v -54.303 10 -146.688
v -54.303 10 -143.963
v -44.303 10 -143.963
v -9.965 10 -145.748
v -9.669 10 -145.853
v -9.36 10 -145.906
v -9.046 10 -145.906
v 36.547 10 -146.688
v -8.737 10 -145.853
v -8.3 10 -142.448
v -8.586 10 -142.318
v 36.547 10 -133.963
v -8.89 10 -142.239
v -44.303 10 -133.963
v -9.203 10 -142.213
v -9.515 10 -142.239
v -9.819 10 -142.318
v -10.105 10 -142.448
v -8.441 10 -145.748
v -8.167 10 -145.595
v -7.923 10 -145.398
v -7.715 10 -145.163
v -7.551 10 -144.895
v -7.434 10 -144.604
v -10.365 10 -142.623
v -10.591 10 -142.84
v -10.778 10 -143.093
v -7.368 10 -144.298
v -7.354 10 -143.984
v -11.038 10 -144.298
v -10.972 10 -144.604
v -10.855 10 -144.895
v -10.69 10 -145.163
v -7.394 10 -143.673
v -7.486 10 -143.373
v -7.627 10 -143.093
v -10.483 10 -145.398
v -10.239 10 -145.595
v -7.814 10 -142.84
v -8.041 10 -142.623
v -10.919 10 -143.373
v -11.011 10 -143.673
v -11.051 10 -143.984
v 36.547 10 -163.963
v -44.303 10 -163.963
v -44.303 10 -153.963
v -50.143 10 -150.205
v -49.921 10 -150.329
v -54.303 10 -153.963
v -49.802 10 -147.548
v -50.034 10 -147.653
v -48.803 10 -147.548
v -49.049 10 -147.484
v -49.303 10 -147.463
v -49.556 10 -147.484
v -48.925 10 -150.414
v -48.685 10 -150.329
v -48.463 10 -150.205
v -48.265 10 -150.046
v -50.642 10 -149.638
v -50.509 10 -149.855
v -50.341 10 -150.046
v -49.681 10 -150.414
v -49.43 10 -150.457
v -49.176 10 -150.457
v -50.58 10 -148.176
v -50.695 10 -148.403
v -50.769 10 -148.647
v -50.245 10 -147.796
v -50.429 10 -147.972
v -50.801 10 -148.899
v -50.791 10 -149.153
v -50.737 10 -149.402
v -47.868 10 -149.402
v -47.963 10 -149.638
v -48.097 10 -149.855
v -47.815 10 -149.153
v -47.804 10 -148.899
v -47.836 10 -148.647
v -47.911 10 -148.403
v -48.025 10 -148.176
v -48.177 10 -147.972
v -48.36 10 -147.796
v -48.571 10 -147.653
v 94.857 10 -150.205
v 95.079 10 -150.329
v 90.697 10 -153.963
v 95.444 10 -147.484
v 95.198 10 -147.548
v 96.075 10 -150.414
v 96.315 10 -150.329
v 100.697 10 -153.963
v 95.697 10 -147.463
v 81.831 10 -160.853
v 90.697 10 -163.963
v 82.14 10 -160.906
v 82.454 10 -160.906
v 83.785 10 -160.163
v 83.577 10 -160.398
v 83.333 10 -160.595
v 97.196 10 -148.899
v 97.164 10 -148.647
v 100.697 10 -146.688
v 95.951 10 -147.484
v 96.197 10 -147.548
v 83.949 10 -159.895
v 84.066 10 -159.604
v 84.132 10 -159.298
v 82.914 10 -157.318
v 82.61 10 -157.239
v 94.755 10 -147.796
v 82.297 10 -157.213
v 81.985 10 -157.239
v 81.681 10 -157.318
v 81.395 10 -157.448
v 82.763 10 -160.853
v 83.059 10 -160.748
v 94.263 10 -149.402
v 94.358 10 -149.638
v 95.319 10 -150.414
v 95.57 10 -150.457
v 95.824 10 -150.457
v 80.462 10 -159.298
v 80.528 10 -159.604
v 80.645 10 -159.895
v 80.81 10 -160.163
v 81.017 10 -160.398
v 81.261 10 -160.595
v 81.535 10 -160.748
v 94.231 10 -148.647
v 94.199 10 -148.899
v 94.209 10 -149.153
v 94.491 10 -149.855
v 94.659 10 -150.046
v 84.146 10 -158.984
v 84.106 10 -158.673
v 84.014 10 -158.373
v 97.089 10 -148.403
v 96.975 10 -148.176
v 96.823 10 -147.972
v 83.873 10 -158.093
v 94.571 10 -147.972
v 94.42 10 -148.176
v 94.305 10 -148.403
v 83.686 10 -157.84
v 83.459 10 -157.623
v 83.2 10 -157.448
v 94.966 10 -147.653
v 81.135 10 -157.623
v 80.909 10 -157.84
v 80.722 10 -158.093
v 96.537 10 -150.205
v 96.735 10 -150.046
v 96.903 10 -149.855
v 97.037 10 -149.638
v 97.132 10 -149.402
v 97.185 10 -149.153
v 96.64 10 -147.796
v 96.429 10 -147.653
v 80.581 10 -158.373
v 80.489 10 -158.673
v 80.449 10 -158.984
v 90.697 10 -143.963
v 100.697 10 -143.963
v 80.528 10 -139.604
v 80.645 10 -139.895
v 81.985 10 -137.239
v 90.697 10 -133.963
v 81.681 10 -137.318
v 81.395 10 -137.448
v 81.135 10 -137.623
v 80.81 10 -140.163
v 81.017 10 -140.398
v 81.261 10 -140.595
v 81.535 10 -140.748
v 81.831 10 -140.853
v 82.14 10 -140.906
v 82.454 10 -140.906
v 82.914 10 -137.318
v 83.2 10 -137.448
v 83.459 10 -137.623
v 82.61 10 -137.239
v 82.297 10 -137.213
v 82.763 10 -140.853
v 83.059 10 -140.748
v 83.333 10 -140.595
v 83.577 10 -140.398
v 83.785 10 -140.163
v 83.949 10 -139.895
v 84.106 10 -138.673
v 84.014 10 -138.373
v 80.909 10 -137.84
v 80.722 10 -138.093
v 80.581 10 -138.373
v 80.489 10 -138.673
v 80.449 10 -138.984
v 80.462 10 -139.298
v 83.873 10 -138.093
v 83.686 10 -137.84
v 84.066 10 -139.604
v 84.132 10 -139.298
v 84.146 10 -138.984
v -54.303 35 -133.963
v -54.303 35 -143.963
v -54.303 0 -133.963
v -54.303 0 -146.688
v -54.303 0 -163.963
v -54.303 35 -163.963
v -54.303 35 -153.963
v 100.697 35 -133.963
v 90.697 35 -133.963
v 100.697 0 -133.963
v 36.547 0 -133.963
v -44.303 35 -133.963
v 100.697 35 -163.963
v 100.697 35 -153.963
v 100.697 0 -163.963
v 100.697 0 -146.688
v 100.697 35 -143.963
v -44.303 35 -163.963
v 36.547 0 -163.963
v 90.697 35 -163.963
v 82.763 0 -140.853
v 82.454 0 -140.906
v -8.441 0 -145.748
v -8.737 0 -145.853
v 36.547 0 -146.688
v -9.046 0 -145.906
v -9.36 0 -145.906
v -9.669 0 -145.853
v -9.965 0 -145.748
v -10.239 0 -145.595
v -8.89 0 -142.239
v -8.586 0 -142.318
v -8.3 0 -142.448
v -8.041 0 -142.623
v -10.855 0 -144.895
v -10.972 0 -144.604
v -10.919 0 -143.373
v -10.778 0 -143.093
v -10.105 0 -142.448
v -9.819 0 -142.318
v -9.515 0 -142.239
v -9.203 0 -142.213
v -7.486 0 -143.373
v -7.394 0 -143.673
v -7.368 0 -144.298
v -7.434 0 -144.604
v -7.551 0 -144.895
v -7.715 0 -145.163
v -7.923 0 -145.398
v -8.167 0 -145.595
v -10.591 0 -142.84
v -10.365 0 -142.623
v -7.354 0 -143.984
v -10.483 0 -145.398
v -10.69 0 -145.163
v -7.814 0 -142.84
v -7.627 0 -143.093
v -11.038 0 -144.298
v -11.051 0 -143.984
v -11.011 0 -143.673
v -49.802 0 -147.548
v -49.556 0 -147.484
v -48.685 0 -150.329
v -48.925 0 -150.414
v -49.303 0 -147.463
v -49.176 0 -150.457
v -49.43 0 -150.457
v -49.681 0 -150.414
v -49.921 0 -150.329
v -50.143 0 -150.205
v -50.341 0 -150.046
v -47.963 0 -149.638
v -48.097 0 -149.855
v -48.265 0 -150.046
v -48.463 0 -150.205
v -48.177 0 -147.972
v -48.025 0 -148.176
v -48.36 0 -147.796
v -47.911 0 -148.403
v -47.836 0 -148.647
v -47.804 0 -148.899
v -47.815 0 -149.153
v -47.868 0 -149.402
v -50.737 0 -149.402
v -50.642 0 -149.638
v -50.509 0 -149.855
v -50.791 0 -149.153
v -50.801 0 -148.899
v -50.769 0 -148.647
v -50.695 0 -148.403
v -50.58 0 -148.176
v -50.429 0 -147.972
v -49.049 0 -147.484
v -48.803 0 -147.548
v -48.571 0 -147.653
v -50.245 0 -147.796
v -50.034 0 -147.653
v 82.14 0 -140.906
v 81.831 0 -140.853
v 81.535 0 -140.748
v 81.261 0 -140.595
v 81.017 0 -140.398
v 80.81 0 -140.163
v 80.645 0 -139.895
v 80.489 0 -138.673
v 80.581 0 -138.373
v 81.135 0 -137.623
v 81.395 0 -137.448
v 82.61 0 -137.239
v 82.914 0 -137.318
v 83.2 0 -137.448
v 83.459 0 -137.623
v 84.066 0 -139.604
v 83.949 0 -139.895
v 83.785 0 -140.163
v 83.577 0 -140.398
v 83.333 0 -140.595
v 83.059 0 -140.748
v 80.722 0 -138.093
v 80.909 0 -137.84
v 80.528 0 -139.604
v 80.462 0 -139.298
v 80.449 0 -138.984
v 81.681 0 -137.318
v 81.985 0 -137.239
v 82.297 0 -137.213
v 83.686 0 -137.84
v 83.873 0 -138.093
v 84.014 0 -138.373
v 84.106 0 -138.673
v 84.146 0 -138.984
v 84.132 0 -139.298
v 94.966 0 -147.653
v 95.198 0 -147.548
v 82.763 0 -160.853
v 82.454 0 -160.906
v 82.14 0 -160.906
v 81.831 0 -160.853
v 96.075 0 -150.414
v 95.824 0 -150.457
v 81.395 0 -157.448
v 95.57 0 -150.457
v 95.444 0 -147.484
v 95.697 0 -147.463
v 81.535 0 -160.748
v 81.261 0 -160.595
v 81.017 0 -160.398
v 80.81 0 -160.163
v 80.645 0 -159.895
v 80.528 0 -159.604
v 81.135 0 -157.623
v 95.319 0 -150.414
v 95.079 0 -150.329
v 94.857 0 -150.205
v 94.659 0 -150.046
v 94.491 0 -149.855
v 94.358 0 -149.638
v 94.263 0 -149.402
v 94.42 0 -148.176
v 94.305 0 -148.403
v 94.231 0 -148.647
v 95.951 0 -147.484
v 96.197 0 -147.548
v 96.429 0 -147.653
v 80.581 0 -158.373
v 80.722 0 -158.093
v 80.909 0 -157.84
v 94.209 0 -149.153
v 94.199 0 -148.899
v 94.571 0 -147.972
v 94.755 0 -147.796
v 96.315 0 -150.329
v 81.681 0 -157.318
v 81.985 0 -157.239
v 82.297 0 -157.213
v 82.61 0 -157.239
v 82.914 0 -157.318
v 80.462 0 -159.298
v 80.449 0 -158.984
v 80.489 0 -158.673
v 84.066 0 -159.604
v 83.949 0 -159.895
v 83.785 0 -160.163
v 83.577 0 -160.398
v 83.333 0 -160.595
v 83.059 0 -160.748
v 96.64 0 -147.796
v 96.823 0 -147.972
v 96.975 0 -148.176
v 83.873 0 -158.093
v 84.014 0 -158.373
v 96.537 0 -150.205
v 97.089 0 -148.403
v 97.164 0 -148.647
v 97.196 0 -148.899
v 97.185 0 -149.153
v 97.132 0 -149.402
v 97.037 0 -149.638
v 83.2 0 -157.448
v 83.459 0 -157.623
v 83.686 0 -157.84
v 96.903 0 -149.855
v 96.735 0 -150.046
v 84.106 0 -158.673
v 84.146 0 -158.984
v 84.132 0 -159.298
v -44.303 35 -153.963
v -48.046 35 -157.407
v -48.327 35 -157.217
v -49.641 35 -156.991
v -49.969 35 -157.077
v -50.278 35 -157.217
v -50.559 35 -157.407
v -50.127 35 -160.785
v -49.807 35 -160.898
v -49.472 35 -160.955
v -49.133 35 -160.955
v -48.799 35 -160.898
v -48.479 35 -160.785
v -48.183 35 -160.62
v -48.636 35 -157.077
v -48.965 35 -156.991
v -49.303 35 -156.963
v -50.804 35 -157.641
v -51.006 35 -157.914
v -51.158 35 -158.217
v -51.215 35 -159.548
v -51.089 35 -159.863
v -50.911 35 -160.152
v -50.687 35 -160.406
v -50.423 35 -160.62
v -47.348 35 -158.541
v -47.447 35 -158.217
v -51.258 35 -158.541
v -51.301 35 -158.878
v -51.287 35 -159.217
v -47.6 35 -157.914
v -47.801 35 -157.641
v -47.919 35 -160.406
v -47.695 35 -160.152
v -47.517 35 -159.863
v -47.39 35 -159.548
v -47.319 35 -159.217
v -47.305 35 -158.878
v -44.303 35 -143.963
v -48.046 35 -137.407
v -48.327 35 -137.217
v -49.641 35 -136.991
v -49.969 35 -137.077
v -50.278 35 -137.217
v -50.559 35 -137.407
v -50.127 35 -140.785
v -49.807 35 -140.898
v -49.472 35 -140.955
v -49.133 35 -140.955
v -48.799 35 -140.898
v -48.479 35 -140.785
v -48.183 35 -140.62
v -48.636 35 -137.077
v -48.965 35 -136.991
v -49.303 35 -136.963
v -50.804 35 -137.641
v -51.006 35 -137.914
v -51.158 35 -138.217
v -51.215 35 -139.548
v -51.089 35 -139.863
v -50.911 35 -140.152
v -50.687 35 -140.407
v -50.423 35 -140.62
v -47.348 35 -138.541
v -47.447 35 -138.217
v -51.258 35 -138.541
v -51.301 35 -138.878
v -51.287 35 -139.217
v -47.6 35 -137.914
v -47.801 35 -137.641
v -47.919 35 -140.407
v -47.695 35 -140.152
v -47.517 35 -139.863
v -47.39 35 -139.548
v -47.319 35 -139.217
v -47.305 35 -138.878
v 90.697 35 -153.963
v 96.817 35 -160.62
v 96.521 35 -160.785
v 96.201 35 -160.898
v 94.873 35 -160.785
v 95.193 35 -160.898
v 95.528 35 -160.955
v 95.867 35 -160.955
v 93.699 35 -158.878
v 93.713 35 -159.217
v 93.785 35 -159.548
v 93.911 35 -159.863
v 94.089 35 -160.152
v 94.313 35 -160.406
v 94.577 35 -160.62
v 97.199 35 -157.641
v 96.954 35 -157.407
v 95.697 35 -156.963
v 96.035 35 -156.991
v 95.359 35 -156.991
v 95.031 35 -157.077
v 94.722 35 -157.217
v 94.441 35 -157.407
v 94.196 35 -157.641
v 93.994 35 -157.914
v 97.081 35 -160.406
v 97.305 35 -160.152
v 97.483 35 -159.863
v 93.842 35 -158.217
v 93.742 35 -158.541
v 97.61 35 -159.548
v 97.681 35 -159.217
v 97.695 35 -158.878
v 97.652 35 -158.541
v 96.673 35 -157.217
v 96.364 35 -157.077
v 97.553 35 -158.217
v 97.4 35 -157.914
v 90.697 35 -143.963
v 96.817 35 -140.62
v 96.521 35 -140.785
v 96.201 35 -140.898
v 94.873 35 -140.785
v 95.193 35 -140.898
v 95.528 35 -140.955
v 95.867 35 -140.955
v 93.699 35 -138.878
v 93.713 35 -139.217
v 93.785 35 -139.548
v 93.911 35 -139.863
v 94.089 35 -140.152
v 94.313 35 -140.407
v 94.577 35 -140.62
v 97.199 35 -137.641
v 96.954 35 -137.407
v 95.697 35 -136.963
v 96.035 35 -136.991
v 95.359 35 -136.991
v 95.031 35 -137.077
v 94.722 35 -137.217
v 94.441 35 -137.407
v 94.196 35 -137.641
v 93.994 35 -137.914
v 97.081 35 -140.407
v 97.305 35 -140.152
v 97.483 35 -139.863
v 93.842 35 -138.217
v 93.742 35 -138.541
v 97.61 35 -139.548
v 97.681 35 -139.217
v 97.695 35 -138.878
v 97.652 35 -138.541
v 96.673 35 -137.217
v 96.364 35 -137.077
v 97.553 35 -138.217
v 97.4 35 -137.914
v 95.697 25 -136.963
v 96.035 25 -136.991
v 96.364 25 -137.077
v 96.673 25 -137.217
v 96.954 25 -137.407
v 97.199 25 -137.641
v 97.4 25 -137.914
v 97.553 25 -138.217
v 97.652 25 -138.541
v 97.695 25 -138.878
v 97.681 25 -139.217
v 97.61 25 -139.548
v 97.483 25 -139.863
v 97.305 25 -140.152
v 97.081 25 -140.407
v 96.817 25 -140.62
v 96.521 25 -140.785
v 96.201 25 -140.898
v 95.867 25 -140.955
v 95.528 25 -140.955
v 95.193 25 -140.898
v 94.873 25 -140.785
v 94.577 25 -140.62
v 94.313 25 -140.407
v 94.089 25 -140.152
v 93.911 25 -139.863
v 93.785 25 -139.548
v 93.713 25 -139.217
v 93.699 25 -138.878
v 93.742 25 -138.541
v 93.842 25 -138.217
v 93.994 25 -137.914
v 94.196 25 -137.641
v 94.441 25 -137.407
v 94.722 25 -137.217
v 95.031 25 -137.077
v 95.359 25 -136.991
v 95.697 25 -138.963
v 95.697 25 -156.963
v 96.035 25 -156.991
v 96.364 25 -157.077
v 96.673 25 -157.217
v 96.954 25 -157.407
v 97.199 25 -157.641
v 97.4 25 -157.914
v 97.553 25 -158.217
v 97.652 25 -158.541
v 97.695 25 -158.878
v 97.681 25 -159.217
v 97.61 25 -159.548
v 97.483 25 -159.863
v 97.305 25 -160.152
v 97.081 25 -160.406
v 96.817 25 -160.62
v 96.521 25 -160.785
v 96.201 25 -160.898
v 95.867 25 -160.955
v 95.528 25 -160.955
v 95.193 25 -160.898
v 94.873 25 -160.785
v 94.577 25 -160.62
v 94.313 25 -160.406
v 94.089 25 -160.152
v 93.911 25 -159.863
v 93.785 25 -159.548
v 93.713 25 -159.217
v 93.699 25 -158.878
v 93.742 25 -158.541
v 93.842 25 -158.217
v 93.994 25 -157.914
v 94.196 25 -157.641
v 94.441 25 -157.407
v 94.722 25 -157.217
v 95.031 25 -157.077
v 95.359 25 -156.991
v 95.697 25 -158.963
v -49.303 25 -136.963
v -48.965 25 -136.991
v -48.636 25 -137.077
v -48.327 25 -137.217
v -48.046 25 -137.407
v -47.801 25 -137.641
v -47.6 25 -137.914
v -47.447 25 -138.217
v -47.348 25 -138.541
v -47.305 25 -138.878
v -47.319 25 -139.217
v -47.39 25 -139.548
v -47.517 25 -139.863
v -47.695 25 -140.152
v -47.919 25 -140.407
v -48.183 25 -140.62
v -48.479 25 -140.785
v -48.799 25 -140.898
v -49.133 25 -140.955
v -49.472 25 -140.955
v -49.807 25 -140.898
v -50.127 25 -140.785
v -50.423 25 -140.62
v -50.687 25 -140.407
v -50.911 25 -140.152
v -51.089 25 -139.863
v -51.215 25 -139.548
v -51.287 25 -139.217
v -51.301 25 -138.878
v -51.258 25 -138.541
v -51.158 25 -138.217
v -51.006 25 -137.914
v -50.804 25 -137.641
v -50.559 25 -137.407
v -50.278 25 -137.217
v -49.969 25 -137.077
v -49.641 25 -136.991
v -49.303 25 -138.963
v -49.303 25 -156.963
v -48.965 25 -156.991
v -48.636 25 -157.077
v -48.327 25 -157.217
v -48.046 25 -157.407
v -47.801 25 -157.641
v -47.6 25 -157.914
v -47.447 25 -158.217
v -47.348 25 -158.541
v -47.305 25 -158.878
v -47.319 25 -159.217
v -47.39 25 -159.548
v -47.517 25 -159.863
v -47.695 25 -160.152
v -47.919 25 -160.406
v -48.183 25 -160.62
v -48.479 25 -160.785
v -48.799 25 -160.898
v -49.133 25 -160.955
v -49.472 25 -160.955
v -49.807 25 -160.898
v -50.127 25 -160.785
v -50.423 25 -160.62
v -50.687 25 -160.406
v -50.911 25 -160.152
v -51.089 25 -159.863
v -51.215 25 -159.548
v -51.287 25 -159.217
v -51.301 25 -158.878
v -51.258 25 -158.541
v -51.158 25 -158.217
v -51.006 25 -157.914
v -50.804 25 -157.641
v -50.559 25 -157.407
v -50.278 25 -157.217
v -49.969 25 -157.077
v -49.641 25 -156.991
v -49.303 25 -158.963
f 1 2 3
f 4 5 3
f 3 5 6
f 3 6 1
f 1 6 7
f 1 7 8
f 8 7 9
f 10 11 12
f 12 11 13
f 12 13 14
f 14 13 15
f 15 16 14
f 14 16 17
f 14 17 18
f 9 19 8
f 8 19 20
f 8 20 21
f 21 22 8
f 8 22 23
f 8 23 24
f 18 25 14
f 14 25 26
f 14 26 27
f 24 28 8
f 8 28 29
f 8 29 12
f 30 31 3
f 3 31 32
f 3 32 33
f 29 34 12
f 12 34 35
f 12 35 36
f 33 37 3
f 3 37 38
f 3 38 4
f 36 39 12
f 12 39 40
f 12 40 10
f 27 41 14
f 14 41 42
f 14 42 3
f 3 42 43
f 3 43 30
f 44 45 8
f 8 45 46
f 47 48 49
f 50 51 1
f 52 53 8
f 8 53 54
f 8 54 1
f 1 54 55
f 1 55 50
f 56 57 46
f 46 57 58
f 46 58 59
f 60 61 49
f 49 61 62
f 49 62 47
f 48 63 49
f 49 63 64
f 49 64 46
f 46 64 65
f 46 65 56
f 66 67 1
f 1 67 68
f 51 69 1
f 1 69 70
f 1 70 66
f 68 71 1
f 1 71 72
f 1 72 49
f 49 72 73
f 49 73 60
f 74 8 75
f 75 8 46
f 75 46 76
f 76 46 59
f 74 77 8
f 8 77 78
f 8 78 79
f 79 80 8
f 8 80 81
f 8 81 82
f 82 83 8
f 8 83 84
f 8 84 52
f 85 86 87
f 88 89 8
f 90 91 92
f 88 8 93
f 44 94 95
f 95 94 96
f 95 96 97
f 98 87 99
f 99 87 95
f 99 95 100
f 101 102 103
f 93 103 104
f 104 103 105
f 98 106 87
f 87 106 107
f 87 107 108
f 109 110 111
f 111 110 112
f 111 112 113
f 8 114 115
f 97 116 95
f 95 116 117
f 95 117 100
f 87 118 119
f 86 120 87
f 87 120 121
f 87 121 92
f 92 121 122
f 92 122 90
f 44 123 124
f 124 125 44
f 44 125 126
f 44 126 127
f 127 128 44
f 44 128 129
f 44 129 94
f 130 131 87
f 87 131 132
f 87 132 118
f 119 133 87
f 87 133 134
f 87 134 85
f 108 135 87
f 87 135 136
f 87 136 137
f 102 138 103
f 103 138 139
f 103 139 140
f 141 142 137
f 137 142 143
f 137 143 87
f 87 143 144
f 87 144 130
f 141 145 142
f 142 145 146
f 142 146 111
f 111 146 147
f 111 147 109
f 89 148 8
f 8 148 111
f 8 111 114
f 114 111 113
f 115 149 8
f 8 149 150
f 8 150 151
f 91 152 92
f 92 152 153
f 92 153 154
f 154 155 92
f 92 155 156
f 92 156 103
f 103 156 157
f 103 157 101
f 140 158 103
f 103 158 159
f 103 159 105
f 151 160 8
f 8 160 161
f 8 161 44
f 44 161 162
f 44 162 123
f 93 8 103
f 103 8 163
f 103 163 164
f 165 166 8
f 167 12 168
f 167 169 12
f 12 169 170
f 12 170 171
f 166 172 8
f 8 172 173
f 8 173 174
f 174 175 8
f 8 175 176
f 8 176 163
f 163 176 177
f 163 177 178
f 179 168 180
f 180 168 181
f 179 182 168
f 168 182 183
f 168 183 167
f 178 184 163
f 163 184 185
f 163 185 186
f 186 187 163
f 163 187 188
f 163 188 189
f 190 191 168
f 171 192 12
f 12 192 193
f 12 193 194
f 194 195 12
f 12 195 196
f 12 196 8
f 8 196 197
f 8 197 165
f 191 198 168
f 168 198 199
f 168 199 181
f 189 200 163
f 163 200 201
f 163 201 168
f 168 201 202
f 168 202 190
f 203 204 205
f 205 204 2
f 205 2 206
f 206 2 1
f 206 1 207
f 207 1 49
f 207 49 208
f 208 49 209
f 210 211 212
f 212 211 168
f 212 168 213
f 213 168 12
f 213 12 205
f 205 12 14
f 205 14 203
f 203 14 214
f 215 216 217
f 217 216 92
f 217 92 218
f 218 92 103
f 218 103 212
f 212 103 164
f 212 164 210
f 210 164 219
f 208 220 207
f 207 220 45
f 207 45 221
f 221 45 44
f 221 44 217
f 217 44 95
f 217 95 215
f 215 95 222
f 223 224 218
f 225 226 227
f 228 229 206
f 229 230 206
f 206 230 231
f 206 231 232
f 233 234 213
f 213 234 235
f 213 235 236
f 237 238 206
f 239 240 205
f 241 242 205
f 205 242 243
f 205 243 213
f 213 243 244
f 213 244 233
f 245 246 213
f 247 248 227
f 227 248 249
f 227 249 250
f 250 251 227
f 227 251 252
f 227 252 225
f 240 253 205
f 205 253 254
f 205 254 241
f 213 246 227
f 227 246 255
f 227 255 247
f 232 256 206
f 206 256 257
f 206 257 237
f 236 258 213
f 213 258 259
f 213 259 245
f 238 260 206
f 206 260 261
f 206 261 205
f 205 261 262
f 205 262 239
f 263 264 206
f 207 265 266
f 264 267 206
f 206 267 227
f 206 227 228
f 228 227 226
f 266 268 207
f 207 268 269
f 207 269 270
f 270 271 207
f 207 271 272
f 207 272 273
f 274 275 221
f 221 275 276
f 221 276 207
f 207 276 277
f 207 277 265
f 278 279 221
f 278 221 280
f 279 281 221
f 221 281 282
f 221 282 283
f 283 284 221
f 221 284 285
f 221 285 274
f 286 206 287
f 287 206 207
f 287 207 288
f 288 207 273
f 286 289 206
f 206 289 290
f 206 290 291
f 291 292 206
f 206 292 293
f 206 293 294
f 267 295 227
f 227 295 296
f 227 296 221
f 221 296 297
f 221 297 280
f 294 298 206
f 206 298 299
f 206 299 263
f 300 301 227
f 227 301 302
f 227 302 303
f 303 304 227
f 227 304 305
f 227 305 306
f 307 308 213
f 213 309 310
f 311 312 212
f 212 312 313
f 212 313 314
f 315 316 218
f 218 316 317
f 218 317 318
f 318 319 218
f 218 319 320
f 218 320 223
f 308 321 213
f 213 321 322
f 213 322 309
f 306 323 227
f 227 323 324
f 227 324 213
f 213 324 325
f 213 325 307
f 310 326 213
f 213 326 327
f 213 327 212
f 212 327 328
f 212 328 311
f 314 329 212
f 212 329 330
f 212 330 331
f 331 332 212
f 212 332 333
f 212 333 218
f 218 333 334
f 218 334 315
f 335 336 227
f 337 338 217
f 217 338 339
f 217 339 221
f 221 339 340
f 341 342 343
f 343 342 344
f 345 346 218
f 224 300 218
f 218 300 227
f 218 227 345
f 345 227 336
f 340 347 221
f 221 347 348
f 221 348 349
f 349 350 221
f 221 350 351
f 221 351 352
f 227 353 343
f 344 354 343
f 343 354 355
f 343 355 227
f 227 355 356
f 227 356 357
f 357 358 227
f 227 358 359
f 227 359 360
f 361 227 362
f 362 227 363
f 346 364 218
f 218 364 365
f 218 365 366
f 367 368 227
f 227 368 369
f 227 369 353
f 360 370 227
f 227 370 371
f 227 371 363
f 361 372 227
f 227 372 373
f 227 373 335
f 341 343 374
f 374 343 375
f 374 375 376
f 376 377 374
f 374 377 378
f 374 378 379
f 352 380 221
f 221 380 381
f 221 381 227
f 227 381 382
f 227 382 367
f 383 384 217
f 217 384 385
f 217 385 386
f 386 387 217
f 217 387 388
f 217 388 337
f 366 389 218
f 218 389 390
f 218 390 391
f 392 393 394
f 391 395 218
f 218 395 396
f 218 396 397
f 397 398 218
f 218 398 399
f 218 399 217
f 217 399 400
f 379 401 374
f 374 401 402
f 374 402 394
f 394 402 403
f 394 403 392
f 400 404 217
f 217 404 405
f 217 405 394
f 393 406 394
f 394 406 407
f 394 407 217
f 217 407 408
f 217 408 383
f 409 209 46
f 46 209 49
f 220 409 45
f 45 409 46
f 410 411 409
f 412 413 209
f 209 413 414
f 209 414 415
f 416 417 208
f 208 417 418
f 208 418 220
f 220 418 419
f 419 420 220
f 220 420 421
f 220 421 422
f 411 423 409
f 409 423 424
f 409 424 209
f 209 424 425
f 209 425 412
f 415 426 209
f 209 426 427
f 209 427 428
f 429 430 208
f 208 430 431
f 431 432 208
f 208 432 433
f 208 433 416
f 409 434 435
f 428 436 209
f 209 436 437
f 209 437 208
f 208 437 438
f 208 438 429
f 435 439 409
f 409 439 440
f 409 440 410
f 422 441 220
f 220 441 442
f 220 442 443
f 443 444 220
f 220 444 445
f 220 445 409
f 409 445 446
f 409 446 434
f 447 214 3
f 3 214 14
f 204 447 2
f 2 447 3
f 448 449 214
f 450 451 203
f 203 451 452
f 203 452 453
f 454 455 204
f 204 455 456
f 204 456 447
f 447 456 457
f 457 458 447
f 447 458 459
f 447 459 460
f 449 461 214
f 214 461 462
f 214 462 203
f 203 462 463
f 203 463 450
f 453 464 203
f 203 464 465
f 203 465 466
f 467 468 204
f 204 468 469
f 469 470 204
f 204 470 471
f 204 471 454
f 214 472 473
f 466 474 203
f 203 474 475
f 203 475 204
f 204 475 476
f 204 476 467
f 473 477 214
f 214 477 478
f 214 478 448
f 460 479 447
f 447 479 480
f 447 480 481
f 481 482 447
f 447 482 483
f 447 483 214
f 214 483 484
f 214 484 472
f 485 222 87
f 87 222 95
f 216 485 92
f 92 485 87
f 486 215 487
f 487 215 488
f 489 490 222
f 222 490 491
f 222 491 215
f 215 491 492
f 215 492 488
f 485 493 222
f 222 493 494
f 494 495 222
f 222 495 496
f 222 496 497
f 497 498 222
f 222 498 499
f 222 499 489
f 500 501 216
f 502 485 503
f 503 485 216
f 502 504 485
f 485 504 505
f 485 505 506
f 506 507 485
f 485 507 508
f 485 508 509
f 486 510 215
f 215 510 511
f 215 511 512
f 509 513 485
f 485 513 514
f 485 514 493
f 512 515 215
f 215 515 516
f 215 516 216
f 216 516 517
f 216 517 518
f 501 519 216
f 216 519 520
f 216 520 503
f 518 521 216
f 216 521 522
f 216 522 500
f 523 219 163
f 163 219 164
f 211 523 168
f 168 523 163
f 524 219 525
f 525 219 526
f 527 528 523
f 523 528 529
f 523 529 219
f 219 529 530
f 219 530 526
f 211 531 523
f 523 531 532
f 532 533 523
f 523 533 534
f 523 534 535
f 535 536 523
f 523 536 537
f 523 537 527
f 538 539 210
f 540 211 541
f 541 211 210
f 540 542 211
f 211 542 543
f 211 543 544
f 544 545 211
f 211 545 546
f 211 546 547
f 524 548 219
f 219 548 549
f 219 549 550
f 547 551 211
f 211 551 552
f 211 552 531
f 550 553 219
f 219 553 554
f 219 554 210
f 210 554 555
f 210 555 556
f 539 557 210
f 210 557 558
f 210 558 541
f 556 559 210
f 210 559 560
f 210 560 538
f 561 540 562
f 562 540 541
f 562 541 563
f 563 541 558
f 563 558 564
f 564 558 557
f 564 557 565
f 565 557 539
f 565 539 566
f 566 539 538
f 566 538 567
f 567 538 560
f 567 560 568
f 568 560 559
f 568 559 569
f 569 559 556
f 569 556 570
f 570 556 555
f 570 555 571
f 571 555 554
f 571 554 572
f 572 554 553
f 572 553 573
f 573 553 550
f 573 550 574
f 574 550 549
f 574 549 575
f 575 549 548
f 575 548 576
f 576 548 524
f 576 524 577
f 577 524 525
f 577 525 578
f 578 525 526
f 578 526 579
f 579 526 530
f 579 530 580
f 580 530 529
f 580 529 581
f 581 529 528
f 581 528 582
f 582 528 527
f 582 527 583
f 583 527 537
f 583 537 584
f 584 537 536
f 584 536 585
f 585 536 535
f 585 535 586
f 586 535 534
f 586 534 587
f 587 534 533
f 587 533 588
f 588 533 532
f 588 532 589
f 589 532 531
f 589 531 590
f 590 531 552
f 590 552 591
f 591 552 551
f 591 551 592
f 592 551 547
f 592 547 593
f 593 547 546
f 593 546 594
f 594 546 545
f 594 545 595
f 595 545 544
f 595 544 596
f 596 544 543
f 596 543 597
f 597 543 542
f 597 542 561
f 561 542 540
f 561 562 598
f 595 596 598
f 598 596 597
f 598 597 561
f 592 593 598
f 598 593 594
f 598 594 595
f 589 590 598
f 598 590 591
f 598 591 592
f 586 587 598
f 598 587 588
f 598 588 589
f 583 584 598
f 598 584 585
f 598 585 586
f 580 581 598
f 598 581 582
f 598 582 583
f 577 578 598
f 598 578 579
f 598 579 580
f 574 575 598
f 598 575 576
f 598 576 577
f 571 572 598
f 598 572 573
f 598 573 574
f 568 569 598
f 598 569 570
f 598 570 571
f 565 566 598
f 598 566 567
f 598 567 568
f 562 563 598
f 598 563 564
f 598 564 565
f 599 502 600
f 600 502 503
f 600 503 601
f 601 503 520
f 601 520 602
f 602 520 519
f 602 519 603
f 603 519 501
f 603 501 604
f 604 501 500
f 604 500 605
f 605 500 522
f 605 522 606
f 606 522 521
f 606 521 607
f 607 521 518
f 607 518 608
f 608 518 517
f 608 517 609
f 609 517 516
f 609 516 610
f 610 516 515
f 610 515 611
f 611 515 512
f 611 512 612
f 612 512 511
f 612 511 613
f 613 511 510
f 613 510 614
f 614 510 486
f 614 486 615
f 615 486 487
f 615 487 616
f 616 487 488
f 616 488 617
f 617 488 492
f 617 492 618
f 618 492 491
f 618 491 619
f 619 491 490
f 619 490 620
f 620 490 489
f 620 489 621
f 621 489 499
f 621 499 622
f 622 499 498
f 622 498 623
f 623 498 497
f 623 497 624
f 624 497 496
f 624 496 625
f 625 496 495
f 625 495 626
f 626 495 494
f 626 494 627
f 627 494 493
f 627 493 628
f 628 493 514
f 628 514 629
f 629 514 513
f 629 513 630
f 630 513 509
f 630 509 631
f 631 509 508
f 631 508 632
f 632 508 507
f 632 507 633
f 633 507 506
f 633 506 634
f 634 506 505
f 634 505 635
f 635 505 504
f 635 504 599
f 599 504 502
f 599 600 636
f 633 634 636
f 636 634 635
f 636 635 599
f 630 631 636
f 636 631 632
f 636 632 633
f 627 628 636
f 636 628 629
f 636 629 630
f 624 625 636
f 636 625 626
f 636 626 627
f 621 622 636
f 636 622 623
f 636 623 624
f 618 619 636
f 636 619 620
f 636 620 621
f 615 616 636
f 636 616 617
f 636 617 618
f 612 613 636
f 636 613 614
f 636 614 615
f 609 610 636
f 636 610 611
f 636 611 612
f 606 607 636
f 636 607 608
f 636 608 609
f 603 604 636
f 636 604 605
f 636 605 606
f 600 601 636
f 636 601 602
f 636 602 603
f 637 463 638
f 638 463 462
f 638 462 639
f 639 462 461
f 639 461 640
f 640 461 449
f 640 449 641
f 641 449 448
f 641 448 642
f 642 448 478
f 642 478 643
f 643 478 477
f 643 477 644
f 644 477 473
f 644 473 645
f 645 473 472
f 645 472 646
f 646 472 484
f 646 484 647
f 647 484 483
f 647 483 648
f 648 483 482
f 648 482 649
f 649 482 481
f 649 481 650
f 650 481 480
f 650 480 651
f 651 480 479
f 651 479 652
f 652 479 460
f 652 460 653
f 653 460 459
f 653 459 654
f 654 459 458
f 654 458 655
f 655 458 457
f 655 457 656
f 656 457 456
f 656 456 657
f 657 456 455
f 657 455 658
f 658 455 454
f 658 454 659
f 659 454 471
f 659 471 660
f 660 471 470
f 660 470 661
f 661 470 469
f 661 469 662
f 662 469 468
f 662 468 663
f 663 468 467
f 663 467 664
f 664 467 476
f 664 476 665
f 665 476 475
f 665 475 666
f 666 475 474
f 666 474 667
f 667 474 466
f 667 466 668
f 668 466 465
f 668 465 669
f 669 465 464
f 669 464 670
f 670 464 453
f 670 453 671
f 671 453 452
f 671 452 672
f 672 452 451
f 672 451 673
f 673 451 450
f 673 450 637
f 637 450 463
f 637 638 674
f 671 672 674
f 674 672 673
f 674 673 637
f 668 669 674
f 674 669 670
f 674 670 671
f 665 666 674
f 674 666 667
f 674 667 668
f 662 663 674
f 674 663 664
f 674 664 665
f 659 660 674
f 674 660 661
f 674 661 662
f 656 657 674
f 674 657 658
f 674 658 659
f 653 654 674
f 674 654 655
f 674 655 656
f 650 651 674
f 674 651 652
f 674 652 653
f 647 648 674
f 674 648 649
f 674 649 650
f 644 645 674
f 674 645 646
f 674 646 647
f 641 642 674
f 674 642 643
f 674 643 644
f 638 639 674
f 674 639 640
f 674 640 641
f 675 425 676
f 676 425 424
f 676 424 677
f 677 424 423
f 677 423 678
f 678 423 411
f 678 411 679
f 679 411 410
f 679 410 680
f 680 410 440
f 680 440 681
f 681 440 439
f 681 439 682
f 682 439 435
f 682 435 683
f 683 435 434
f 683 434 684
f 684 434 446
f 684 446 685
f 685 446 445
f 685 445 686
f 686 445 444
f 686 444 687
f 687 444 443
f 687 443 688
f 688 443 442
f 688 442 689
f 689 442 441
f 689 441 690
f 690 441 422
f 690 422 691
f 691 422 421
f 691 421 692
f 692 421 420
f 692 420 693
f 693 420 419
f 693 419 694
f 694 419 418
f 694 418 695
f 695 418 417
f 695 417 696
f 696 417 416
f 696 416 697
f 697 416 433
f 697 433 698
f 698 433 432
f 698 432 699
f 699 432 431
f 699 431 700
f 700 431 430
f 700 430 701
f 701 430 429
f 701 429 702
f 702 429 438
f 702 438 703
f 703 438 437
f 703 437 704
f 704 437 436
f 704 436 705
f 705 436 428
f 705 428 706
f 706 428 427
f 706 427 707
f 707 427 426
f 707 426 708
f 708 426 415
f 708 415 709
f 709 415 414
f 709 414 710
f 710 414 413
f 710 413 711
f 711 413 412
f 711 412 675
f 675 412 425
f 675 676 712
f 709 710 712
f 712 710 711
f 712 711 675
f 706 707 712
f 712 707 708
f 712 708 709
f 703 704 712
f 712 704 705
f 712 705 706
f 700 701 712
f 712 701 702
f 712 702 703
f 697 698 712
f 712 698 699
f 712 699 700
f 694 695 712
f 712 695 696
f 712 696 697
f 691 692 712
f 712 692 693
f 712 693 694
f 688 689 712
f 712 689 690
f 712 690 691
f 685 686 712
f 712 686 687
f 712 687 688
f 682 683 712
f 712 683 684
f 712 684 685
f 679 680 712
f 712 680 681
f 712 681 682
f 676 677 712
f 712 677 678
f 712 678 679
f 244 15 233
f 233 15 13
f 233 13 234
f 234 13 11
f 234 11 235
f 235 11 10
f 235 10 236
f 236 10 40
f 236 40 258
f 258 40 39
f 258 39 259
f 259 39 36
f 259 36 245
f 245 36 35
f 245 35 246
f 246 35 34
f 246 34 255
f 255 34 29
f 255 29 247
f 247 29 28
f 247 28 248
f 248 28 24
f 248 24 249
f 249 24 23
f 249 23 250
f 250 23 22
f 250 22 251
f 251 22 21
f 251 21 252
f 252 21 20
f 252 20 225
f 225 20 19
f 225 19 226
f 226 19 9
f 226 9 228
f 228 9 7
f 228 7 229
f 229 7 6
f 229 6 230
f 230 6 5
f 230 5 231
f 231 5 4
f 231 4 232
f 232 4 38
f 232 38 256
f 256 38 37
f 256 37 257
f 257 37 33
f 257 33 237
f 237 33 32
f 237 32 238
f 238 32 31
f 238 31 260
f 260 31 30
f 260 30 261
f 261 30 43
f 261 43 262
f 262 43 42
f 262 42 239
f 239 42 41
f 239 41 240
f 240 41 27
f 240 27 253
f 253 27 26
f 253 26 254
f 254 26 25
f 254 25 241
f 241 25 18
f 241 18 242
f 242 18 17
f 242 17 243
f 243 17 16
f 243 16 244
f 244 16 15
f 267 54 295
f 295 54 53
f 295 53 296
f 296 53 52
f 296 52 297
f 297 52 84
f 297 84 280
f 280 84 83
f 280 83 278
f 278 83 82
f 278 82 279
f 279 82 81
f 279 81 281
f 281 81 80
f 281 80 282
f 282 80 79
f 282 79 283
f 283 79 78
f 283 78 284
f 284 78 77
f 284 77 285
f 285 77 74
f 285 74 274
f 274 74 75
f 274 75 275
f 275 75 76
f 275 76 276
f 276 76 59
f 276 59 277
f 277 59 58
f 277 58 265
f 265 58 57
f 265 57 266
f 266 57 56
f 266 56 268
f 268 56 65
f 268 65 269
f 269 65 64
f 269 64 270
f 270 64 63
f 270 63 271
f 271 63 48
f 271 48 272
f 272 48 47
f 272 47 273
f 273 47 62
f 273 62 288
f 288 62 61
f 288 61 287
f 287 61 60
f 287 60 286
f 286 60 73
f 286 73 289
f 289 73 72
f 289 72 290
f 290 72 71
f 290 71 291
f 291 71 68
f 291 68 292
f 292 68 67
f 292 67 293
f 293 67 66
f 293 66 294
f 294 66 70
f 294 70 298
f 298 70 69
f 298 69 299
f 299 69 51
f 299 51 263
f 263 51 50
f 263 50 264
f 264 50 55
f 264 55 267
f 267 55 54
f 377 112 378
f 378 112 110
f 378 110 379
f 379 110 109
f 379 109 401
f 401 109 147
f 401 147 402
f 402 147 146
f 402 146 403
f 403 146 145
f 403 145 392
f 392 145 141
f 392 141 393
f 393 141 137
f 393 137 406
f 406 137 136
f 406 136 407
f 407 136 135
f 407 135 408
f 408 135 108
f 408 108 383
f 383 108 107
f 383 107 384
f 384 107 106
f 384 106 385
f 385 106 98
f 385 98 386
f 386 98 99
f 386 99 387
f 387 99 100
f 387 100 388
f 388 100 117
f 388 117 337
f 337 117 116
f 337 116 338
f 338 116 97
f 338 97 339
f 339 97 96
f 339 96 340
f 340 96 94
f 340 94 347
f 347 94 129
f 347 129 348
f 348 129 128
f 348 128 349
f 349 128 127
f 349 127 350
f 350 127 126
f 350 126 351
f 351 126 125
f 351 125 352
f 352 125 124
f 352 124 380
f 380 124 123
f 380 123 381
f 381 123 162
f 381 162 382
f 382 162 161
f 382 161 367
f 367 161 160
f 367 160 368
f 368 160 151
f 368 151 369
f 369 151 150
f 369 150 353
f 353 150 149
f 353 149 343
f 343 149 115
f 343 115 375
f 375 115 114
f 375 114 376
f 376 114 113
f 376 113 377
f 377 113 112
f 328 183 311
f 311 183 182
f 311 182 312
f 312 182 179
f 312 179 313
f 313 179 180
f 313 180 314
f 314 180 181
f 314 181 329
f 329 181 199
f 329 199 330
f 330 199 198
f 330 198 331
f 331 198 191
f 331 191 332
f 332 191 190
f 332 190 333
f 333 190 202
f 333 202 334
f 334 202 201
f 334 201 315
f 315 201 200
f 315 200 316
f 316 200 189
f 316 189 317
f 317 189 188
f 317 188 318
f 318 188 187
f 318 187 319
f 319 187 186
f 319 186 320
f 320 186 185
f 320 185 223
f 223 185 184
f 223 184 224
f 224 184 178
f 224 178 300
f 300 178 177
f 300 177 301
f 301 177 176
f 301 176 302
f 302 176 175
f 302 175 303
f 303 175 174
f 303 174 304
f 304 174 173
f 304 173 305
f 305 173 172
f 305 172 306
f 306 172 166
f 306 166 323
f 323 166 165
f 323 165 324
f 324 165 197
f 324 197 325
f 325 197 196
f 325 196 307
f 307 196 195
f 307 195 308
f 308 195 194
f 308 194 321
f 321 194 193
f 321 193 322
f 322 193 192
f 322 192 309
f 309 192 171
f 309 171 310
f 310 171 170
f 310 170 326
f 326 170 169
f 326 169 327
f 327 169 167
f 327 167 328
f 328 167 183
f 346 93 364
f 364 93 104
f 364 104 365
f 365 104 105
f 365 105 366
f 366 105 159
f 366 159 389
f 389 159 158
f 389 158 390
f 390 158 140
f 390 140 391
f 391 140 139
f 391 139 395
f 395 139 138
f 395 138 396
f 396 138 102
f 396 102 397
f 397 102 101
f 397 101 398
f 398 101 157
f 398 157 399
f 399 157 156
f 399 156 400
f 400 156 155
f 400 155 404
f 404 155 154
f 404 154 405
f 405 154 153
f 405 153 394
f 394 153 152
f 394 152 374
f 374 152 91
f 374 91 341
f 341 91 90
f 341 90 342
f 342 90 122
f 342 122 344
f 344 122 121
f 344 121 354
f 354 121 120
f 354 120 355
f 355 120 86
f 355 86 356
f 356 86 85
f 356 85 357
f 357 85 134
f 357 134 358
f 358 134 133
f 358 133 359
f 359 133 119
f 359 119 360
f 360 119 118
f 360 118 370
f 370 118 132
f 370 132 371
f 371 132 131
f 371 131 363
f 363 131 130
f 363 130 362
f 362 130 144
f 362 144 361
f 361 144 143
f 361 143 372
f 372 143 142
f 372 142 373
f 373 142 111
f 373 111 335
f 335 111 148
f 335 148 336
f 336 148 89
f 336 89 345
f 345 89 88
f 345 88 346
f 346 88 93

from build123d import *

# Parameters (mm, degrees)
SKETCH3_W           = 155
SKETCH3_H           = 30
BOSS_EXTRUDE3_DEPTH = 10
SKETCH4_W           = 10
SKETCH4_H           = 10
BOSS_EXTRUDE4_DEPTH = 25
SKETCH6_R           = 2
CUT_EXTRUDE1_DEPTH  = 10
SKETCH7_R           = 1.5
SKETCH7_R_2         = 1.85
CUT_EXTRUDE2_DEPTH  = 10


with BuildPart() as part:
    # Sketch3 → Boss-Extrude3 (new body)
    with BuildSketch(Plane(origin=(0, 0, 0), x_dir=(1, 0, 0), z_dir=(0, 1, 0))):
        with Locations((23.197278912, 148.962585034)):
            Rectangle(SKETCH3_W, SKETCH3_H)
    extrude(amount=BOSS_EXTRUDE3_DEPTH)

    # Sketch4 → Boss-Extrude4 (add)
    with BuildSketch(Plane(origin=(0, 10, 0), x_dir=(1, 0, 0), z_dir=(0, 1, 0))):
        with Locations((-49.302721088, 158.962585034)):
            Rectangle(SKETCH4_W, SKETCH4_H)
        with Locations((-49.302721088, 138.962585034)):
            Rectangle(SKETCH4_W, SKETCH4_H)
        with Locations((95.697278912, 158.962585034)):
            Rectangle(SKETCH4_W, SKETCH4_H)
        with Locations((95.697278912, 138.962585034)):
            Rectangle(SKETCH4_W, SKETCH4_H)
    extrude(amount=BOSS_EXTRUDE4_DEPTH)

    # Sketch6 → Cut-Extrude1 (cut)
    with BuildSketch(Plane(origin=(0, 35, 0), x_dir=(1, 0, 0), z_dir=(0, 1, 0))):
        with Locations((95.697278912, 138.962585034)):
            Circle(SKETCH6_R)
        with Locations((95.697278912, 158.962585034)):
            Circle(SKETCH6_R)
        with Locations((-49.302721088, 138.962585034)):
            Circle(SKETCH6_R)
        with Locations((-49.302721088, 158.962585034)):
            Circle(SKETCH6_R)
    extrude(amount=-CUT_EXTRUDE1_DEPTH, mode=Mode.SUBTRACT)

    # Sketch7 → Cut-Extrude2 (cut)
    with BuildSketch(Plane(origin=(0, 10, 0), x_dir=(1, 0, 0), z_dir=(0, 1, 0))):
        with Locations((95.697278912, 148.962585034)):
            Circle(SKETCH7_R)
        with Locations((82.297278912, 139.062585034)):
            Circle(SKETCH7_R_2)
        with Locations((82.297278912, 159.062585034)):
            Circle(SKETCH7_R_2)
        with Locations((-49.302721088, 148.962585034)):
            Circle(SKETCH7_R)
        with Locations((-9.202721088, 144.062585034)):
            Circle(SKETCH7_R_2)
    extrude(amount=-CUT_EXTRUDE2_DEPTH, mode=Mode.SUBTRACT)


solid = part.part
